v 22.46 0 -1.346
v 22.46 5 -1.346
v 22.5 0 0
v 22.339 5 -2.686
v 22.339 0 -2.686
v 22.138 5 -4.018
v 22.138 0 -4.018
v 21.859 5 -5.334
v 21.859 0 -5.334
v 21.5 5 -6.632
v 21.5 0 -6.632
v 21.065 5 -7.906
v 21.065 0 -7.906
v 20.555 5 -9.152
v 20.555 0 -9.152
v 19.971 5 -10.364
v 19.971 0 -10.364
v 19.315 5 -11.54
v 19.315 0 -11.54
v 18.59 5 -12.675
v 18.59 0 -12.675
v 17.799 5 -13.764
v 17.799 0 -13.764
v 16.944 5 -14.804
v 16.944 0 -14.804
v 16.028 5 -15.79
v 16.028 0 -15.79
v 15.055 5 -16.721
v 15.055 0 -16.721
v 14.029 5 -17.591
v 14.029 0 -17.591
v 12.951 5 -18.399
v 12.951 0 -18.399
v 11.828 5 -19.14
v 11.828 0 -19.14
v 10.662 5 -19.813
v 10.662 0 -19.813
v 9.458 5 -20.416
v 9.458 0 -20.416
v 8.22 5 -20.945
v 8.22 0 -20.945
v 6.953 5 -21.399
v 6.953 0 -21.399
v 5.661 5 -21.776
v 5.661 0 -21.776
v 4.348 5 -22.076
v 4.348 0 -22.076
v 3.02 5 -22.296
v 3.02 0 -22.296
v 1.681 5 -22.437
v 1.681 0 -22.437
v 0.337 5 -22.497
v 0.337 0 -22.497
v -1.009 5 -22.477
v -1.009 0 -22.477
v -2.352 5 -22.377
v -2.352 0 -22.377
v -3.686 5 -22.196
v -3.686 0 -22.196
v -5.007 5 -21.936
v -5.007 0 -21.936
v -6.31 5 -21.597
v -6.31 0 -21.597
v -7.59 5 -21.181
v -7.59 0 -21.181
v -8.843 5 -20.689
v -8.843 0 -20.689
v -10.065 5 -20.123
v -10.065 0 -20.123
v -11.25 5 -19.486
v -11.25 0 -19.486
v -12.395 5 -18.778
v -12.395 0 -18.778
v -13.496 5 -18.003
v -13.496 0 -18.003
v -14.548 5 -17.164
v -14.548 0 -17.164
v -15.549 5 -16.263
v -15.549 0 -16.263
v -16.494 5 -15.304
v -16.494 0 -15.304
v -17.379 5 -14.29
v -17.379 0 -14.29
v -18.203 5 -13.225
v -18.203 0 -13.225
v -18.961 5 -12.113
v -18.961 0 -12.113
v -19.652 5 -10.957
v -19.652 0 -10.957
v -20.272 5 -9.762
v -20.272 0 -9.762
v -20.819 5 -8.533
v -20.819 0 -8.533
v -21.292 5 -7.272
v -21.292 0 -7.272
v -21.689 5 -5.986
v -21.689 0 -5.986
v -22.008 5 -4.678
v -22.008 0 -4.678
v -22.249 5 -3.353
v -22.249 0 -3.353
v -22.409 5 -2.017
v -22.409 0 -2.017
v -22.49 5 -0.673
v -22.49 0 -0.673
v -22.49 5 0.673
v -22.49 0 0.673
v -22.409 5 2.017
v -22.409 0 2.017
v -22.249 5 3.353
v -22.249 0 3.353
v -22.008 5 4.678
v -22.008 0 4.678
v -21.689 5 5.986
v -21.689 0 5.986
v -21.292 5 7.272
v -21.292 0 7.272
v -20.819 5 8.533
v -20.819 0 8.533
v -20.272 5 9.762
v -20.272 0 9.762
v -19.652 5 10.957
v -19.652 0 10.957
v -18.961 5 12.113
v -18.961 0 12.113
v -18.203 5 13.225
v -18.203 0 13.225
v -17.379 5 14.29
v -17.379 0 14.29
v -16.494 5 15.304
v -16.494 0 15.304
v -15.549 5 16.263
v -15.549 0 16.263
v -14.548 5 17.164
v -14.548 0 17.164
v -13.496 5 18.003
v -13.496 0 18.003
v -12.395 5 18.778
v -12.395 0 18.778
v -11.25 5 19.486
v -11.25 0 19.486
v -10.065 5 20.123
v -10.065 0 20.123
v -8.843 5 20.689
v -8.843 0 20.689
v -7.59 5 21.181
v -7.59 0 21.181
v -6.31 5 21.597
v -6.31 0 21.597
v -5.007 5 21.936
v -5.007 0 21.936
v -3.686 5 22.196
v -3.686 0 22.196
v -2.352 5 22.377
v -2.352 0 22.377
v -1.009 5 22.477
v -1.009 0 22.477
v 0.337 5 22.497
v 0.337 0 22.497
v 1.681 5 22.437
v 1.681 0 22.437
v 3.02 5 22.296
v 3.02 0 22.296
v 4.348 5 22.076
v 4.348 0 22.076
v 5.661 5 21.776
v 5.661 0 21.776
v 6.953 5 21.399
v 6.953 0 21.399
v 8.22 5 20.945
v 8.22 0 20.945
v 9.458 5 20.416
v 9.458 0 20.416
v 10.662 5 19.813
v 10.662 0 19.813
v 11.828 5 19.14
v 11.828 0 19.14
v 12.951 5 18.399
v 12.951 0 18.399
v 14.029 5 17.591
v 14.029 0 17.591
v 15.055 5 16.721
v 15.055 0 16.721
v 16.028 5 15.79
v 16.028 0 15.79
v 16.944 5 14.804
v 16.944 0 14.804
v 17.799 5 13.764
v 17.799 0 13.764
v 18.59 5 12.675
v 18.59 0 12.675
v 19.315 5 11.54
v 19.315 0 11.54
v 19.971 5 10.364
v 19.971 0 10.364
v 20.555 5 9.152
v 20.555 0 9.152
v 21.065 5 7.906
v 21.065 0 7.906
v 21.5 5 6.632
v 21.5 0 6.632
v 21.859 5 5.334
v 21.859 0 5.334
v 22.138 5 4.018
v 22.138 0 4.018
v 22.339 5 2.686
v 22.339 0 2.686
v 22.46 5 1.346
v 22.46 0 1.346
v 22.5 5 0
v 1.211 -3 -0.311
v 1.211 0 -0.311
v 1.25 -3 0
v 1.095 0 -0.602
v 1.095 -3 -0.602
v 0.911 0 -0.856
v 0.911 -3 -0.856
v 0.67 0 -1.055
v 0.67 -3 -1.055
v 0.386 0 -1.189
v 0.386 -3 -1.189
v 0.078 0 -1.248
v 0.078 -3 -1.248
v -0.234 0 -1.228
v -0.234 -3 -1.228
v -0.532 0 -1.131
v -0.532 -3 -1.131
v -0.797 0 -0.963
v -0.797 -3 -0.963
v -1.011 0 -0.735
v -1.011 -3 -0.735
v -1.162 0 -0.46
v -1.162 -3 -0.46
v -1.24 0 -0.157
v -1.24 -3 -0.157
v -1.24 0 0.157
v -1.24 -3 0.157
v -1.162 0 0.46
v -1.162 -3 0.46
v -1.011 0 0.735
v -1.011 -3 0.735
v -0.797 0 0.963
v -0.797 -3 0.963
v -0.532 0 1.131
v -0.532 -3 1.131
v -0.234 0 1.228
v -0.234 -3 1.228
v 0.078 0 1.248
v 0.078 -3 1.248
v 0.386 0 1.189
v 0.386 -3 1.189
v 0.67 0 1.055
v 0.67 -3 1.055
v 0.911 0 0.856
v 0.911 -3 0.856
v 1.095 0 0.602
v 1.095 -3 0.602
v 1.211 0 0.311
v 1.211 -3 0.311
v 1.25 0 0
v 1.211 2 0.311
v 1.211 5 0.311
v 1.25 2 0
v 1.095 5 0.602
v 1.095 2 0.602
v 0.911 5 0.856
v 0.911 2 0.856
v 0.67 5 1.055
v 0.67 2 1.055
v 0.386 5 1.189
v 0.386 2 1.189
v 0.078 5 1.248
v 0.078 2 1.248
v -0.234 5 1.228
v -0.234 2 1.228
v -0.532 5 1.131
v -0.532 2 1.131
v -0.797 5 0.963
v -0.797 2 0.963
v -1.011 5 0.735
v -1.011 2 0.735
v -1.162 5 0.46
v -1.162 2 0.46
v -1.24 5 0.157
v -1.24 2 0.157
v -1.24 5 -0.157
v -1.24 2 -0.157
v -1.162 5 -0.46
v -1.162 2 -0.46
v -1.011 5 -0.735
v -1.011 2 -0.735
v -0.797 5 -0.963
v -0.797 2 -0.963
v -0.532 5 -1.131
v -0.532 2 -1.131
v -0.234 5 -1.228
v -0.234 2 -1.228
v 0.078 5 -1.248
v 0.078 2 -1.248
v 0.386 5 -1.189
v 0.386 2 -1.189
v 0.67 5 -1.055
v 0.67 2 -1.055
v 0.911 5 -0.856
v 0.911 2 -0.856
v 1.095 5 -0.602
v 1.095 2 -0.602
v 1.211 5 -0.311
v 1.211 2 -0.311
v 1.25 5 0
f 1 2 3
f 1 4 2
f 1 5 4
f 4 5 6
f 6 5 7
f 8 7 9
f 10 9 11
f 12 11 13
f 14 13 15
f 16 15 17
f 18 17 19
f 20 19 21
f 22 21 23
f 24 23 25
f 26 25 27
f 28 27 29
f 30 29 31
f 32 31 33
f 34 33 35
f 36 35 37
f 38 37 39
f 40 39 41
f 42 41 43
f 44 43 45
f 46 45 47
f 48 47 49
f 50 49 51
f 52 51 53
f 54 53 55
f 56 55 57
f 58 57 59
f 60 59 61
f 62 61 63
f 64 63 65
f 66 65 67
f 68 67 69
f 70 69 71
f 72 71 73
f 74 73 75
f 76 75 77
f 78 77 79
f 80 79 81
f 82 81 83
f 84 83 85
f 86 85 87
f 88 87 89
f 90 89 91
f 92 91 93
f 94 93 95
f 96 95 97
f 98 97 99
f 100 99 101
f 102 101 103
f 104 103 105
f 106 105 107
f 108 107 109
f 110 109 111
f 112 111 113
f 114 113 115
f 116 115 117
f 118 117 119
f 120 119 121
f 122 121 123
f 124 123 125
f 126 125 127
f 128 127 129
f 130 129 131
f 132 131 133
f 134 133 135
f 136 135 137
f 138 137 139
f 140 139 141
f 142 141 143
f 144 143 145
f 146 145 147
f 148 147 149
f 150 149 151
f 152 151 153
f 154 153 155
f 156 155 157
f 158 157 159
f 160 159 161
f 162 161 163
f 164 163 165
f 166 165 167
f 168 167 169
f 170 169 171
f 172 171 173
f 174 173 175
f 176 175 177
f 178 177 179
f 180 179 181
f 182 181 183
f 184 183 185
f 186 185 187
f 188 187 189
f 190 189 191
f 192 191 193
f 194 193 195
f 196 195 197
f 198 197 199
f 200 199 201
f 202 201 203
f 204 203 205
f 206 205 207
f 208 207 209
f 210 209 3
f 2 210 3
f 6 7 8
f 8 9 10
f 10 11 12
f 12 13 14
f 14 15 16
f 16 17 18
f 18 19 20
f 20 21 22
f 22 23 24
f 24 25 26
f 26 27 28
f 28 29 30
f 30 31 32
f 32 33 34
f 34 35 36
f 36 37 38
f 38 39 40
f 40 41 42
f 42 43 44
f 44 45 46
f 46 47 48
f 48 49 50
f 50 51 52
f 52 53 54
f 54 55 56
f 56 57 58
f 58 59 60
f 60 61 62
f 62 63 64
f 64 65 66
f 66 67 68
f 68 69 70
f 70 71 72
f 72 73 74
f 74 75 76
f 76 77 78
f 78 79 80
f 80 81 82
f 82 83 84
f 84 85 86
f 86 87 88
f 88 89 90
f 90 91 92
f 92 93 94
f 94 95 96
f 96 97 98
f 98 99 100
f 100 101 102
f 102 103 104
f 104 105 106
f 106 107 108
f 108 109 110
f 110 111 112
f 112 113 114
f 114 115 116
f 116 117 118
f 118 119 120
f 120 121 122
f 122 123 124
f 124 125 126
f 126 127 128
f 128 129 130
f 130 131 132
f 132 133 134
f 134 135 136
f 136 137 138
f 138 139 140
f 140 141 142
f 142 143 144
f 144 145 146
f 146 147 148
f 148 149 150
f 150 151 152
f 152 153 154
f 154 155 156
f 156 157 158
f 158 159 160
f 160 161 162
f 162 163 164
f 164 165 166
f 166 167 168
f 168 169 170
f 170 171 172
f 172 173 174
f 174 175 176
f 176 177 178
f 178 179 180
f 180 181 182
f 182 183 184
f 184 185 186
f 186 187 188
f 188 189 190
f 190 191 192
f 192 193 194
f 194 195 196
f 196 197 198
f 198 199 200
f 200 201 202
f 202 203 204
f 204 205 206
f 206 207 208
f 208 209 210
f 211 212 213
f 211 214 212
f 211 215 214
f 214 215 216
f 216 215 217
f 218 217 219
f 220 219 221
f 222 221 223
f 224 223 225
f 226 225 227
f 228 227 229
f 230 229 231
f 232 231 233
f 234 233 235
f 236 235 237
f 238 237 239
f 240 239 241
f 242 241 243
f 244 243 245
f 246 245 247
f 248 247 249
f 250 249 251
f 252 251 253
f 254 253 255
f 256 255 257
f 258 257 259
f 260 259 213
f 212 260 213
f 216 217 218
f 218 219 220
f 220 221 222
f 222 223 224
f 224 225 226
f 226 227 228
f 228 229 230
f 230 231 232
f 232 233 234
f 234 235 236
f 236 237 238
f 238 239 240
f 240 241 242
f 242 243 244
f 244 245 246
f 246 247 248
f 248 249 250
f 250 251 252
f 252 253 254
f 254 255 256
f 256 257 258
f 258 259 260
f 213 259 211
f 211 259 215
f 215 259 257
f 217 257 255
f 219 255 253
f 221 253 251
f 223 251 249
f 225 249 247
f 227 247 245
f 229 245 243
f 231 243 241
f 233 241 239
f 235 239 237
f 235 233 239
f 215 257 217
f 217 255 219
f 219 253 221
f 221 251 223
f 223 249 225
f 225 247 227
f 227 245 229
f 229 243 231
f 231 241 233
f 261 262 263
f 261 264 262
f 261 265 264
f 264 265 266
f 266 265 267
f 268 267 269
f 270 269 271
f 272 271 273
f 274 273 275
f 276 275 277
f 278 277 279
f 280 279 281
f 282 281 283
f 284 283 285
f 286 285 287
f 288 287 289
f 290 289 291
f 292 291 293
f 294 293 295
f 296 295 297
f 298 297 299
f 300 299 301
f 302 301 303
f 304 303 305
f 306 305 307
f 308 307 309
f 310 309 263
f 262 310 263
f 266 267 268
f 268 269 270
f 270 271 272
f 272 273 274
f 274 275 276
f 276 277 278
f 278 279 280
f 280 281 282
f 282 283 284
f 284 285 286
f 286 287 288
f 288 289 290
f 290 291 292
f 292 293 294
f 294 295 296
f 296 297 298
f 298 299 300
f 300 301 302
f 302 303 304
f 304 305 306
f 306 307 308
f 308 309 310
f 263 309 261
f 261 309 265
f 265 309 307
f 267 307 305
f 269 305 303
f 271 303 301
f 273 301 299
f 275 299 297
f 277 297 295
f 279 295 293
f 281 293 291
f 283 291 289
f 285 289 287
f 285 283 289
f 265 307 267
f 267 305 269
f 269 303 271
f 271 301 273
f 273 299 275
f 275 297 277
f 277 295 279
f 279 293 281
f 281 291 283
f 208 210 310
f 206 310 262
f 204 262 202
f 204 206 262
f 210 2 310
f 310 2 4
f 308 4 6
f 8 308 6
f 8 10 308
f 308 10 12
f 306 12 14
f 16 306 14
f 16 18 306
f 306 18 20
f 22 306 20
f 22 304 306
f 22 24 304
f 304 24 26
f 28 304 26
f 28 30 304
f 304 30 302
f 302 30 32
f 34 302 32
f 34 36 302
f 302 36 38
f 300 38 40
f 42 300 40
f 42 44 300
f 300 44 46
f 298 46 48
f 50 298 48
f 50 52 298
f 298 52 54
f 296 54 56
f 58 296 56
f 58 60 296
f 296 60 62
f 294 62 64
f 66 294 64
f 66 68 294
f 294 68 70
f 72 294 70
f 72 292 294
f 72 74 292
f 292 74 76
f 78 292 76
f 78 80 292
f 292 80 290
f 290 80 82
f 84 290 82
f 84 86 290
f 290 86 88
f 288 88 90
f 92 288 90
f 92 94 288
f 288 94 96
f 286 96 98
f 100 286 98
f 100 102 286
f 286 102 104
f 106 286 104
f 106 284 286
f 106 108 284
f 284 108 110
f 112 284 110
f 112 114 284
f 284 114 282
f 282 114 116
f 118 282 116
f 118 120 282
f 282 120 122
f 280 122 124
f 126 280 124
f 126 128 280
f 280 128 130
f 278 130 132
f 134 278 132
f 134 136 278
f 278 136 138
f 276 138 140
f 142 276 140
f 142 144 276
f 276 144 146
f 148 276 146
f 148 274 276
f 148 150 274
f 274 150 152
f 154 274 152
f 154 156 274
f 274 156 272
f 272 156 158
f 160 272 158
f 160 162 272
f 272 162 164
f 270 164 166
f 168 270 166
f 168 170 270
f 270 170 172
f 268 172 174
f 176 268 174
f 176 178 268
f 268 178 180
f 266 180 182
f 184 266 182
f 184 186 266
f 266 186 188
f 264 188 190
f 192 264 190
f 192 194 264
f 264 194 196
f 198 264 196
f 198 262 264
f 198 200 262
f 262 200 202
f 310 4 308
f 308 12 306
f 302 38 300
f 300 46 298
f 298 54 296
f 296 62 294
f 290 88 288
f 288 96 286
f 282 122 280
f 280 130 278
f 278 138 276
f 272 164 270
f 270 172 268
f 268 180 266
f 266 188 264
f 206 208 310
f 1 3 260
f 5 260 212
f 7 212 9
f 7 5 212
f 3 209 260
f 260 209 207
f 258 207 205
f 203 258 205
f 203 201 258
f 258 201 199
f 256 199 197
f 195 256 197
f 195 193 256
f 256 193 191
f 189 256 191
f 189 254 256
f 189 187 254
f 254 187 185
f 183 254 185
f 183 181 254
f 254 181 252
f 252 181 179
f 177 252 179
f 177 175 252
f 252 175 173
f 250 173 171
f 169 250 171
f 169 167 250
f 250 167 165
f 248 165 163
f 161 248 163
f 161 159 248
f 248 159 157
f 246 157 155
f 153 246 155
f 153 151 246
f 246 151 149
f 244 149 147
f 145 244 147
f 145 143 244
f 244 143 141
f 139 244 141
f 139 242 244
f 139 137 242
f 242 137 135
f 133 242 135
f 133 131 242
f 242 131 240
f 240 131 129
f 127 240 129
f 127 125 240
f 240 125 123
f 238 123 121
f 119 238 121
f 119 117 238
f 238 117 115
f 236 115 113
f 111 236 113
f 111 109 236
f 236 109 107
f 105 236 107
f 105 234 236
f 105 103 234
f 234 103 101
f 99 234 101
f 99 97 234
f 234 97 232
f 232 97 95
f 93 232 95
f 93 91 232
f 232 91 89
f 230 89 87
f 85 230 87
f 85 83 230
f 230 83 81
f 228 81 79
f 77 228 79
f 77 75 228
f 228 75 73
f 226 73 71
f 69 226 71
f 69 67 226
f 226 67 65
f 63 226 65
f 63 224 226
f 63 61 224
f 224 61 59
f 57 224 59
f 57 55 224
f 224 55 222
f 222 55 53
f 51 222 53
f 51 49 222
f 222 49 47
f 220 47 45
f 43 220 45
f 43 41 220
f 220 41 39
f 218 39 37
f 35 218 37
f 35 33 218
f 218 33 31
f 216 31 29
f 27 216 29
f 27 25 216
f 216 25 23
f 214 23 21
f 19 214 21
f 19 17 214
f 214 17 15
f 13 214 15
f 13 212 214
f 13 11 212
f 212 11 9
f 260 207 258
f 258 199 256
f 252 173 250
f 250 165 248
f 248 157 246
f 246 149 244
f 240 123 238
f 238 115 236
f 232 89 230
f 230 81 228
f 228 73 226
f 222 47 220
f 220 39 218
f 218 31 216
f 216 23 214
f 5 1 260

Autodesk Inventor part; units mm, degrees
ref_plane "YZ Plane" through (0, 0, 0) normal (1, 0, 0) x (0, 1, 0)
ref_plane "XZ Plane" through (0, 0, 0) normal (0, 1, 0) x (-1, 0, 0)
ref_plane "XY Plane" through (0, 0, 0) normal (0, 0, 1) x (1, 0, 0)
sketch "スケッチ1" plane through (0, 0, 0) normal (0, 1, 0) x (-1, 0, 0)
  circle A0 centre (0, 0) radius 12.5
  dimension "d0" = 25
extrude "押し出し1" add sketch "スケッチ1" along normal blind 5
sketch "スケッチ2" plane through (0, 5, 0) normal (0, 1, 0) x (1, 0, 0)
  circle A0 centre (0, 0) radius 12.5 projected
  circle A1 centre (0, 0) radius 1.25
  dimension "d3" = 2.5
extrude "押し出し2" cut sketch "スケッチ2" against normal blind 3 contours A1
sketch "スケッチ3" plane through (0, 0, 0) normal (0, -1, 0) x (1, 0, 0)
  circle A0 centre (0, 0) radius 12.5 projected
  circle A1 centre (0, 0) radius 1.25
  dimension "d6" = 2.5
extrude "押し出し3" add sketch "スケッチ3" along normal blind 3 contours A1
sketch "スケッチ4" plane through (0, 5, 0) normal (0, 1, 0) x (1, 0, 0)
  circle A0 centre (0, 0) radius 12.5 projected
  circle A1 centre (0, 0) radius 17.5
  dimension "d9" = 35
extrude "押し出し4" add sketch "スケッチ4" against normal blind 5
sketch "スケッチ5" plane through (0, 5, 0) normal (0, 1, 0) x (1, 0, 0)
  circle A0 centre (0, 0) radius 17.5 projected
  circle A1 centre (0, 0) radius 1.25 projected
  circle A2 centre (0, 0) radius 22.5
  dimension "d12" = 45
extrude "押し出し5" add sketch "スケッチ5" against normal blind 5 contours A2
properties part number "知能ロボコンシリンダ延長45mm"
